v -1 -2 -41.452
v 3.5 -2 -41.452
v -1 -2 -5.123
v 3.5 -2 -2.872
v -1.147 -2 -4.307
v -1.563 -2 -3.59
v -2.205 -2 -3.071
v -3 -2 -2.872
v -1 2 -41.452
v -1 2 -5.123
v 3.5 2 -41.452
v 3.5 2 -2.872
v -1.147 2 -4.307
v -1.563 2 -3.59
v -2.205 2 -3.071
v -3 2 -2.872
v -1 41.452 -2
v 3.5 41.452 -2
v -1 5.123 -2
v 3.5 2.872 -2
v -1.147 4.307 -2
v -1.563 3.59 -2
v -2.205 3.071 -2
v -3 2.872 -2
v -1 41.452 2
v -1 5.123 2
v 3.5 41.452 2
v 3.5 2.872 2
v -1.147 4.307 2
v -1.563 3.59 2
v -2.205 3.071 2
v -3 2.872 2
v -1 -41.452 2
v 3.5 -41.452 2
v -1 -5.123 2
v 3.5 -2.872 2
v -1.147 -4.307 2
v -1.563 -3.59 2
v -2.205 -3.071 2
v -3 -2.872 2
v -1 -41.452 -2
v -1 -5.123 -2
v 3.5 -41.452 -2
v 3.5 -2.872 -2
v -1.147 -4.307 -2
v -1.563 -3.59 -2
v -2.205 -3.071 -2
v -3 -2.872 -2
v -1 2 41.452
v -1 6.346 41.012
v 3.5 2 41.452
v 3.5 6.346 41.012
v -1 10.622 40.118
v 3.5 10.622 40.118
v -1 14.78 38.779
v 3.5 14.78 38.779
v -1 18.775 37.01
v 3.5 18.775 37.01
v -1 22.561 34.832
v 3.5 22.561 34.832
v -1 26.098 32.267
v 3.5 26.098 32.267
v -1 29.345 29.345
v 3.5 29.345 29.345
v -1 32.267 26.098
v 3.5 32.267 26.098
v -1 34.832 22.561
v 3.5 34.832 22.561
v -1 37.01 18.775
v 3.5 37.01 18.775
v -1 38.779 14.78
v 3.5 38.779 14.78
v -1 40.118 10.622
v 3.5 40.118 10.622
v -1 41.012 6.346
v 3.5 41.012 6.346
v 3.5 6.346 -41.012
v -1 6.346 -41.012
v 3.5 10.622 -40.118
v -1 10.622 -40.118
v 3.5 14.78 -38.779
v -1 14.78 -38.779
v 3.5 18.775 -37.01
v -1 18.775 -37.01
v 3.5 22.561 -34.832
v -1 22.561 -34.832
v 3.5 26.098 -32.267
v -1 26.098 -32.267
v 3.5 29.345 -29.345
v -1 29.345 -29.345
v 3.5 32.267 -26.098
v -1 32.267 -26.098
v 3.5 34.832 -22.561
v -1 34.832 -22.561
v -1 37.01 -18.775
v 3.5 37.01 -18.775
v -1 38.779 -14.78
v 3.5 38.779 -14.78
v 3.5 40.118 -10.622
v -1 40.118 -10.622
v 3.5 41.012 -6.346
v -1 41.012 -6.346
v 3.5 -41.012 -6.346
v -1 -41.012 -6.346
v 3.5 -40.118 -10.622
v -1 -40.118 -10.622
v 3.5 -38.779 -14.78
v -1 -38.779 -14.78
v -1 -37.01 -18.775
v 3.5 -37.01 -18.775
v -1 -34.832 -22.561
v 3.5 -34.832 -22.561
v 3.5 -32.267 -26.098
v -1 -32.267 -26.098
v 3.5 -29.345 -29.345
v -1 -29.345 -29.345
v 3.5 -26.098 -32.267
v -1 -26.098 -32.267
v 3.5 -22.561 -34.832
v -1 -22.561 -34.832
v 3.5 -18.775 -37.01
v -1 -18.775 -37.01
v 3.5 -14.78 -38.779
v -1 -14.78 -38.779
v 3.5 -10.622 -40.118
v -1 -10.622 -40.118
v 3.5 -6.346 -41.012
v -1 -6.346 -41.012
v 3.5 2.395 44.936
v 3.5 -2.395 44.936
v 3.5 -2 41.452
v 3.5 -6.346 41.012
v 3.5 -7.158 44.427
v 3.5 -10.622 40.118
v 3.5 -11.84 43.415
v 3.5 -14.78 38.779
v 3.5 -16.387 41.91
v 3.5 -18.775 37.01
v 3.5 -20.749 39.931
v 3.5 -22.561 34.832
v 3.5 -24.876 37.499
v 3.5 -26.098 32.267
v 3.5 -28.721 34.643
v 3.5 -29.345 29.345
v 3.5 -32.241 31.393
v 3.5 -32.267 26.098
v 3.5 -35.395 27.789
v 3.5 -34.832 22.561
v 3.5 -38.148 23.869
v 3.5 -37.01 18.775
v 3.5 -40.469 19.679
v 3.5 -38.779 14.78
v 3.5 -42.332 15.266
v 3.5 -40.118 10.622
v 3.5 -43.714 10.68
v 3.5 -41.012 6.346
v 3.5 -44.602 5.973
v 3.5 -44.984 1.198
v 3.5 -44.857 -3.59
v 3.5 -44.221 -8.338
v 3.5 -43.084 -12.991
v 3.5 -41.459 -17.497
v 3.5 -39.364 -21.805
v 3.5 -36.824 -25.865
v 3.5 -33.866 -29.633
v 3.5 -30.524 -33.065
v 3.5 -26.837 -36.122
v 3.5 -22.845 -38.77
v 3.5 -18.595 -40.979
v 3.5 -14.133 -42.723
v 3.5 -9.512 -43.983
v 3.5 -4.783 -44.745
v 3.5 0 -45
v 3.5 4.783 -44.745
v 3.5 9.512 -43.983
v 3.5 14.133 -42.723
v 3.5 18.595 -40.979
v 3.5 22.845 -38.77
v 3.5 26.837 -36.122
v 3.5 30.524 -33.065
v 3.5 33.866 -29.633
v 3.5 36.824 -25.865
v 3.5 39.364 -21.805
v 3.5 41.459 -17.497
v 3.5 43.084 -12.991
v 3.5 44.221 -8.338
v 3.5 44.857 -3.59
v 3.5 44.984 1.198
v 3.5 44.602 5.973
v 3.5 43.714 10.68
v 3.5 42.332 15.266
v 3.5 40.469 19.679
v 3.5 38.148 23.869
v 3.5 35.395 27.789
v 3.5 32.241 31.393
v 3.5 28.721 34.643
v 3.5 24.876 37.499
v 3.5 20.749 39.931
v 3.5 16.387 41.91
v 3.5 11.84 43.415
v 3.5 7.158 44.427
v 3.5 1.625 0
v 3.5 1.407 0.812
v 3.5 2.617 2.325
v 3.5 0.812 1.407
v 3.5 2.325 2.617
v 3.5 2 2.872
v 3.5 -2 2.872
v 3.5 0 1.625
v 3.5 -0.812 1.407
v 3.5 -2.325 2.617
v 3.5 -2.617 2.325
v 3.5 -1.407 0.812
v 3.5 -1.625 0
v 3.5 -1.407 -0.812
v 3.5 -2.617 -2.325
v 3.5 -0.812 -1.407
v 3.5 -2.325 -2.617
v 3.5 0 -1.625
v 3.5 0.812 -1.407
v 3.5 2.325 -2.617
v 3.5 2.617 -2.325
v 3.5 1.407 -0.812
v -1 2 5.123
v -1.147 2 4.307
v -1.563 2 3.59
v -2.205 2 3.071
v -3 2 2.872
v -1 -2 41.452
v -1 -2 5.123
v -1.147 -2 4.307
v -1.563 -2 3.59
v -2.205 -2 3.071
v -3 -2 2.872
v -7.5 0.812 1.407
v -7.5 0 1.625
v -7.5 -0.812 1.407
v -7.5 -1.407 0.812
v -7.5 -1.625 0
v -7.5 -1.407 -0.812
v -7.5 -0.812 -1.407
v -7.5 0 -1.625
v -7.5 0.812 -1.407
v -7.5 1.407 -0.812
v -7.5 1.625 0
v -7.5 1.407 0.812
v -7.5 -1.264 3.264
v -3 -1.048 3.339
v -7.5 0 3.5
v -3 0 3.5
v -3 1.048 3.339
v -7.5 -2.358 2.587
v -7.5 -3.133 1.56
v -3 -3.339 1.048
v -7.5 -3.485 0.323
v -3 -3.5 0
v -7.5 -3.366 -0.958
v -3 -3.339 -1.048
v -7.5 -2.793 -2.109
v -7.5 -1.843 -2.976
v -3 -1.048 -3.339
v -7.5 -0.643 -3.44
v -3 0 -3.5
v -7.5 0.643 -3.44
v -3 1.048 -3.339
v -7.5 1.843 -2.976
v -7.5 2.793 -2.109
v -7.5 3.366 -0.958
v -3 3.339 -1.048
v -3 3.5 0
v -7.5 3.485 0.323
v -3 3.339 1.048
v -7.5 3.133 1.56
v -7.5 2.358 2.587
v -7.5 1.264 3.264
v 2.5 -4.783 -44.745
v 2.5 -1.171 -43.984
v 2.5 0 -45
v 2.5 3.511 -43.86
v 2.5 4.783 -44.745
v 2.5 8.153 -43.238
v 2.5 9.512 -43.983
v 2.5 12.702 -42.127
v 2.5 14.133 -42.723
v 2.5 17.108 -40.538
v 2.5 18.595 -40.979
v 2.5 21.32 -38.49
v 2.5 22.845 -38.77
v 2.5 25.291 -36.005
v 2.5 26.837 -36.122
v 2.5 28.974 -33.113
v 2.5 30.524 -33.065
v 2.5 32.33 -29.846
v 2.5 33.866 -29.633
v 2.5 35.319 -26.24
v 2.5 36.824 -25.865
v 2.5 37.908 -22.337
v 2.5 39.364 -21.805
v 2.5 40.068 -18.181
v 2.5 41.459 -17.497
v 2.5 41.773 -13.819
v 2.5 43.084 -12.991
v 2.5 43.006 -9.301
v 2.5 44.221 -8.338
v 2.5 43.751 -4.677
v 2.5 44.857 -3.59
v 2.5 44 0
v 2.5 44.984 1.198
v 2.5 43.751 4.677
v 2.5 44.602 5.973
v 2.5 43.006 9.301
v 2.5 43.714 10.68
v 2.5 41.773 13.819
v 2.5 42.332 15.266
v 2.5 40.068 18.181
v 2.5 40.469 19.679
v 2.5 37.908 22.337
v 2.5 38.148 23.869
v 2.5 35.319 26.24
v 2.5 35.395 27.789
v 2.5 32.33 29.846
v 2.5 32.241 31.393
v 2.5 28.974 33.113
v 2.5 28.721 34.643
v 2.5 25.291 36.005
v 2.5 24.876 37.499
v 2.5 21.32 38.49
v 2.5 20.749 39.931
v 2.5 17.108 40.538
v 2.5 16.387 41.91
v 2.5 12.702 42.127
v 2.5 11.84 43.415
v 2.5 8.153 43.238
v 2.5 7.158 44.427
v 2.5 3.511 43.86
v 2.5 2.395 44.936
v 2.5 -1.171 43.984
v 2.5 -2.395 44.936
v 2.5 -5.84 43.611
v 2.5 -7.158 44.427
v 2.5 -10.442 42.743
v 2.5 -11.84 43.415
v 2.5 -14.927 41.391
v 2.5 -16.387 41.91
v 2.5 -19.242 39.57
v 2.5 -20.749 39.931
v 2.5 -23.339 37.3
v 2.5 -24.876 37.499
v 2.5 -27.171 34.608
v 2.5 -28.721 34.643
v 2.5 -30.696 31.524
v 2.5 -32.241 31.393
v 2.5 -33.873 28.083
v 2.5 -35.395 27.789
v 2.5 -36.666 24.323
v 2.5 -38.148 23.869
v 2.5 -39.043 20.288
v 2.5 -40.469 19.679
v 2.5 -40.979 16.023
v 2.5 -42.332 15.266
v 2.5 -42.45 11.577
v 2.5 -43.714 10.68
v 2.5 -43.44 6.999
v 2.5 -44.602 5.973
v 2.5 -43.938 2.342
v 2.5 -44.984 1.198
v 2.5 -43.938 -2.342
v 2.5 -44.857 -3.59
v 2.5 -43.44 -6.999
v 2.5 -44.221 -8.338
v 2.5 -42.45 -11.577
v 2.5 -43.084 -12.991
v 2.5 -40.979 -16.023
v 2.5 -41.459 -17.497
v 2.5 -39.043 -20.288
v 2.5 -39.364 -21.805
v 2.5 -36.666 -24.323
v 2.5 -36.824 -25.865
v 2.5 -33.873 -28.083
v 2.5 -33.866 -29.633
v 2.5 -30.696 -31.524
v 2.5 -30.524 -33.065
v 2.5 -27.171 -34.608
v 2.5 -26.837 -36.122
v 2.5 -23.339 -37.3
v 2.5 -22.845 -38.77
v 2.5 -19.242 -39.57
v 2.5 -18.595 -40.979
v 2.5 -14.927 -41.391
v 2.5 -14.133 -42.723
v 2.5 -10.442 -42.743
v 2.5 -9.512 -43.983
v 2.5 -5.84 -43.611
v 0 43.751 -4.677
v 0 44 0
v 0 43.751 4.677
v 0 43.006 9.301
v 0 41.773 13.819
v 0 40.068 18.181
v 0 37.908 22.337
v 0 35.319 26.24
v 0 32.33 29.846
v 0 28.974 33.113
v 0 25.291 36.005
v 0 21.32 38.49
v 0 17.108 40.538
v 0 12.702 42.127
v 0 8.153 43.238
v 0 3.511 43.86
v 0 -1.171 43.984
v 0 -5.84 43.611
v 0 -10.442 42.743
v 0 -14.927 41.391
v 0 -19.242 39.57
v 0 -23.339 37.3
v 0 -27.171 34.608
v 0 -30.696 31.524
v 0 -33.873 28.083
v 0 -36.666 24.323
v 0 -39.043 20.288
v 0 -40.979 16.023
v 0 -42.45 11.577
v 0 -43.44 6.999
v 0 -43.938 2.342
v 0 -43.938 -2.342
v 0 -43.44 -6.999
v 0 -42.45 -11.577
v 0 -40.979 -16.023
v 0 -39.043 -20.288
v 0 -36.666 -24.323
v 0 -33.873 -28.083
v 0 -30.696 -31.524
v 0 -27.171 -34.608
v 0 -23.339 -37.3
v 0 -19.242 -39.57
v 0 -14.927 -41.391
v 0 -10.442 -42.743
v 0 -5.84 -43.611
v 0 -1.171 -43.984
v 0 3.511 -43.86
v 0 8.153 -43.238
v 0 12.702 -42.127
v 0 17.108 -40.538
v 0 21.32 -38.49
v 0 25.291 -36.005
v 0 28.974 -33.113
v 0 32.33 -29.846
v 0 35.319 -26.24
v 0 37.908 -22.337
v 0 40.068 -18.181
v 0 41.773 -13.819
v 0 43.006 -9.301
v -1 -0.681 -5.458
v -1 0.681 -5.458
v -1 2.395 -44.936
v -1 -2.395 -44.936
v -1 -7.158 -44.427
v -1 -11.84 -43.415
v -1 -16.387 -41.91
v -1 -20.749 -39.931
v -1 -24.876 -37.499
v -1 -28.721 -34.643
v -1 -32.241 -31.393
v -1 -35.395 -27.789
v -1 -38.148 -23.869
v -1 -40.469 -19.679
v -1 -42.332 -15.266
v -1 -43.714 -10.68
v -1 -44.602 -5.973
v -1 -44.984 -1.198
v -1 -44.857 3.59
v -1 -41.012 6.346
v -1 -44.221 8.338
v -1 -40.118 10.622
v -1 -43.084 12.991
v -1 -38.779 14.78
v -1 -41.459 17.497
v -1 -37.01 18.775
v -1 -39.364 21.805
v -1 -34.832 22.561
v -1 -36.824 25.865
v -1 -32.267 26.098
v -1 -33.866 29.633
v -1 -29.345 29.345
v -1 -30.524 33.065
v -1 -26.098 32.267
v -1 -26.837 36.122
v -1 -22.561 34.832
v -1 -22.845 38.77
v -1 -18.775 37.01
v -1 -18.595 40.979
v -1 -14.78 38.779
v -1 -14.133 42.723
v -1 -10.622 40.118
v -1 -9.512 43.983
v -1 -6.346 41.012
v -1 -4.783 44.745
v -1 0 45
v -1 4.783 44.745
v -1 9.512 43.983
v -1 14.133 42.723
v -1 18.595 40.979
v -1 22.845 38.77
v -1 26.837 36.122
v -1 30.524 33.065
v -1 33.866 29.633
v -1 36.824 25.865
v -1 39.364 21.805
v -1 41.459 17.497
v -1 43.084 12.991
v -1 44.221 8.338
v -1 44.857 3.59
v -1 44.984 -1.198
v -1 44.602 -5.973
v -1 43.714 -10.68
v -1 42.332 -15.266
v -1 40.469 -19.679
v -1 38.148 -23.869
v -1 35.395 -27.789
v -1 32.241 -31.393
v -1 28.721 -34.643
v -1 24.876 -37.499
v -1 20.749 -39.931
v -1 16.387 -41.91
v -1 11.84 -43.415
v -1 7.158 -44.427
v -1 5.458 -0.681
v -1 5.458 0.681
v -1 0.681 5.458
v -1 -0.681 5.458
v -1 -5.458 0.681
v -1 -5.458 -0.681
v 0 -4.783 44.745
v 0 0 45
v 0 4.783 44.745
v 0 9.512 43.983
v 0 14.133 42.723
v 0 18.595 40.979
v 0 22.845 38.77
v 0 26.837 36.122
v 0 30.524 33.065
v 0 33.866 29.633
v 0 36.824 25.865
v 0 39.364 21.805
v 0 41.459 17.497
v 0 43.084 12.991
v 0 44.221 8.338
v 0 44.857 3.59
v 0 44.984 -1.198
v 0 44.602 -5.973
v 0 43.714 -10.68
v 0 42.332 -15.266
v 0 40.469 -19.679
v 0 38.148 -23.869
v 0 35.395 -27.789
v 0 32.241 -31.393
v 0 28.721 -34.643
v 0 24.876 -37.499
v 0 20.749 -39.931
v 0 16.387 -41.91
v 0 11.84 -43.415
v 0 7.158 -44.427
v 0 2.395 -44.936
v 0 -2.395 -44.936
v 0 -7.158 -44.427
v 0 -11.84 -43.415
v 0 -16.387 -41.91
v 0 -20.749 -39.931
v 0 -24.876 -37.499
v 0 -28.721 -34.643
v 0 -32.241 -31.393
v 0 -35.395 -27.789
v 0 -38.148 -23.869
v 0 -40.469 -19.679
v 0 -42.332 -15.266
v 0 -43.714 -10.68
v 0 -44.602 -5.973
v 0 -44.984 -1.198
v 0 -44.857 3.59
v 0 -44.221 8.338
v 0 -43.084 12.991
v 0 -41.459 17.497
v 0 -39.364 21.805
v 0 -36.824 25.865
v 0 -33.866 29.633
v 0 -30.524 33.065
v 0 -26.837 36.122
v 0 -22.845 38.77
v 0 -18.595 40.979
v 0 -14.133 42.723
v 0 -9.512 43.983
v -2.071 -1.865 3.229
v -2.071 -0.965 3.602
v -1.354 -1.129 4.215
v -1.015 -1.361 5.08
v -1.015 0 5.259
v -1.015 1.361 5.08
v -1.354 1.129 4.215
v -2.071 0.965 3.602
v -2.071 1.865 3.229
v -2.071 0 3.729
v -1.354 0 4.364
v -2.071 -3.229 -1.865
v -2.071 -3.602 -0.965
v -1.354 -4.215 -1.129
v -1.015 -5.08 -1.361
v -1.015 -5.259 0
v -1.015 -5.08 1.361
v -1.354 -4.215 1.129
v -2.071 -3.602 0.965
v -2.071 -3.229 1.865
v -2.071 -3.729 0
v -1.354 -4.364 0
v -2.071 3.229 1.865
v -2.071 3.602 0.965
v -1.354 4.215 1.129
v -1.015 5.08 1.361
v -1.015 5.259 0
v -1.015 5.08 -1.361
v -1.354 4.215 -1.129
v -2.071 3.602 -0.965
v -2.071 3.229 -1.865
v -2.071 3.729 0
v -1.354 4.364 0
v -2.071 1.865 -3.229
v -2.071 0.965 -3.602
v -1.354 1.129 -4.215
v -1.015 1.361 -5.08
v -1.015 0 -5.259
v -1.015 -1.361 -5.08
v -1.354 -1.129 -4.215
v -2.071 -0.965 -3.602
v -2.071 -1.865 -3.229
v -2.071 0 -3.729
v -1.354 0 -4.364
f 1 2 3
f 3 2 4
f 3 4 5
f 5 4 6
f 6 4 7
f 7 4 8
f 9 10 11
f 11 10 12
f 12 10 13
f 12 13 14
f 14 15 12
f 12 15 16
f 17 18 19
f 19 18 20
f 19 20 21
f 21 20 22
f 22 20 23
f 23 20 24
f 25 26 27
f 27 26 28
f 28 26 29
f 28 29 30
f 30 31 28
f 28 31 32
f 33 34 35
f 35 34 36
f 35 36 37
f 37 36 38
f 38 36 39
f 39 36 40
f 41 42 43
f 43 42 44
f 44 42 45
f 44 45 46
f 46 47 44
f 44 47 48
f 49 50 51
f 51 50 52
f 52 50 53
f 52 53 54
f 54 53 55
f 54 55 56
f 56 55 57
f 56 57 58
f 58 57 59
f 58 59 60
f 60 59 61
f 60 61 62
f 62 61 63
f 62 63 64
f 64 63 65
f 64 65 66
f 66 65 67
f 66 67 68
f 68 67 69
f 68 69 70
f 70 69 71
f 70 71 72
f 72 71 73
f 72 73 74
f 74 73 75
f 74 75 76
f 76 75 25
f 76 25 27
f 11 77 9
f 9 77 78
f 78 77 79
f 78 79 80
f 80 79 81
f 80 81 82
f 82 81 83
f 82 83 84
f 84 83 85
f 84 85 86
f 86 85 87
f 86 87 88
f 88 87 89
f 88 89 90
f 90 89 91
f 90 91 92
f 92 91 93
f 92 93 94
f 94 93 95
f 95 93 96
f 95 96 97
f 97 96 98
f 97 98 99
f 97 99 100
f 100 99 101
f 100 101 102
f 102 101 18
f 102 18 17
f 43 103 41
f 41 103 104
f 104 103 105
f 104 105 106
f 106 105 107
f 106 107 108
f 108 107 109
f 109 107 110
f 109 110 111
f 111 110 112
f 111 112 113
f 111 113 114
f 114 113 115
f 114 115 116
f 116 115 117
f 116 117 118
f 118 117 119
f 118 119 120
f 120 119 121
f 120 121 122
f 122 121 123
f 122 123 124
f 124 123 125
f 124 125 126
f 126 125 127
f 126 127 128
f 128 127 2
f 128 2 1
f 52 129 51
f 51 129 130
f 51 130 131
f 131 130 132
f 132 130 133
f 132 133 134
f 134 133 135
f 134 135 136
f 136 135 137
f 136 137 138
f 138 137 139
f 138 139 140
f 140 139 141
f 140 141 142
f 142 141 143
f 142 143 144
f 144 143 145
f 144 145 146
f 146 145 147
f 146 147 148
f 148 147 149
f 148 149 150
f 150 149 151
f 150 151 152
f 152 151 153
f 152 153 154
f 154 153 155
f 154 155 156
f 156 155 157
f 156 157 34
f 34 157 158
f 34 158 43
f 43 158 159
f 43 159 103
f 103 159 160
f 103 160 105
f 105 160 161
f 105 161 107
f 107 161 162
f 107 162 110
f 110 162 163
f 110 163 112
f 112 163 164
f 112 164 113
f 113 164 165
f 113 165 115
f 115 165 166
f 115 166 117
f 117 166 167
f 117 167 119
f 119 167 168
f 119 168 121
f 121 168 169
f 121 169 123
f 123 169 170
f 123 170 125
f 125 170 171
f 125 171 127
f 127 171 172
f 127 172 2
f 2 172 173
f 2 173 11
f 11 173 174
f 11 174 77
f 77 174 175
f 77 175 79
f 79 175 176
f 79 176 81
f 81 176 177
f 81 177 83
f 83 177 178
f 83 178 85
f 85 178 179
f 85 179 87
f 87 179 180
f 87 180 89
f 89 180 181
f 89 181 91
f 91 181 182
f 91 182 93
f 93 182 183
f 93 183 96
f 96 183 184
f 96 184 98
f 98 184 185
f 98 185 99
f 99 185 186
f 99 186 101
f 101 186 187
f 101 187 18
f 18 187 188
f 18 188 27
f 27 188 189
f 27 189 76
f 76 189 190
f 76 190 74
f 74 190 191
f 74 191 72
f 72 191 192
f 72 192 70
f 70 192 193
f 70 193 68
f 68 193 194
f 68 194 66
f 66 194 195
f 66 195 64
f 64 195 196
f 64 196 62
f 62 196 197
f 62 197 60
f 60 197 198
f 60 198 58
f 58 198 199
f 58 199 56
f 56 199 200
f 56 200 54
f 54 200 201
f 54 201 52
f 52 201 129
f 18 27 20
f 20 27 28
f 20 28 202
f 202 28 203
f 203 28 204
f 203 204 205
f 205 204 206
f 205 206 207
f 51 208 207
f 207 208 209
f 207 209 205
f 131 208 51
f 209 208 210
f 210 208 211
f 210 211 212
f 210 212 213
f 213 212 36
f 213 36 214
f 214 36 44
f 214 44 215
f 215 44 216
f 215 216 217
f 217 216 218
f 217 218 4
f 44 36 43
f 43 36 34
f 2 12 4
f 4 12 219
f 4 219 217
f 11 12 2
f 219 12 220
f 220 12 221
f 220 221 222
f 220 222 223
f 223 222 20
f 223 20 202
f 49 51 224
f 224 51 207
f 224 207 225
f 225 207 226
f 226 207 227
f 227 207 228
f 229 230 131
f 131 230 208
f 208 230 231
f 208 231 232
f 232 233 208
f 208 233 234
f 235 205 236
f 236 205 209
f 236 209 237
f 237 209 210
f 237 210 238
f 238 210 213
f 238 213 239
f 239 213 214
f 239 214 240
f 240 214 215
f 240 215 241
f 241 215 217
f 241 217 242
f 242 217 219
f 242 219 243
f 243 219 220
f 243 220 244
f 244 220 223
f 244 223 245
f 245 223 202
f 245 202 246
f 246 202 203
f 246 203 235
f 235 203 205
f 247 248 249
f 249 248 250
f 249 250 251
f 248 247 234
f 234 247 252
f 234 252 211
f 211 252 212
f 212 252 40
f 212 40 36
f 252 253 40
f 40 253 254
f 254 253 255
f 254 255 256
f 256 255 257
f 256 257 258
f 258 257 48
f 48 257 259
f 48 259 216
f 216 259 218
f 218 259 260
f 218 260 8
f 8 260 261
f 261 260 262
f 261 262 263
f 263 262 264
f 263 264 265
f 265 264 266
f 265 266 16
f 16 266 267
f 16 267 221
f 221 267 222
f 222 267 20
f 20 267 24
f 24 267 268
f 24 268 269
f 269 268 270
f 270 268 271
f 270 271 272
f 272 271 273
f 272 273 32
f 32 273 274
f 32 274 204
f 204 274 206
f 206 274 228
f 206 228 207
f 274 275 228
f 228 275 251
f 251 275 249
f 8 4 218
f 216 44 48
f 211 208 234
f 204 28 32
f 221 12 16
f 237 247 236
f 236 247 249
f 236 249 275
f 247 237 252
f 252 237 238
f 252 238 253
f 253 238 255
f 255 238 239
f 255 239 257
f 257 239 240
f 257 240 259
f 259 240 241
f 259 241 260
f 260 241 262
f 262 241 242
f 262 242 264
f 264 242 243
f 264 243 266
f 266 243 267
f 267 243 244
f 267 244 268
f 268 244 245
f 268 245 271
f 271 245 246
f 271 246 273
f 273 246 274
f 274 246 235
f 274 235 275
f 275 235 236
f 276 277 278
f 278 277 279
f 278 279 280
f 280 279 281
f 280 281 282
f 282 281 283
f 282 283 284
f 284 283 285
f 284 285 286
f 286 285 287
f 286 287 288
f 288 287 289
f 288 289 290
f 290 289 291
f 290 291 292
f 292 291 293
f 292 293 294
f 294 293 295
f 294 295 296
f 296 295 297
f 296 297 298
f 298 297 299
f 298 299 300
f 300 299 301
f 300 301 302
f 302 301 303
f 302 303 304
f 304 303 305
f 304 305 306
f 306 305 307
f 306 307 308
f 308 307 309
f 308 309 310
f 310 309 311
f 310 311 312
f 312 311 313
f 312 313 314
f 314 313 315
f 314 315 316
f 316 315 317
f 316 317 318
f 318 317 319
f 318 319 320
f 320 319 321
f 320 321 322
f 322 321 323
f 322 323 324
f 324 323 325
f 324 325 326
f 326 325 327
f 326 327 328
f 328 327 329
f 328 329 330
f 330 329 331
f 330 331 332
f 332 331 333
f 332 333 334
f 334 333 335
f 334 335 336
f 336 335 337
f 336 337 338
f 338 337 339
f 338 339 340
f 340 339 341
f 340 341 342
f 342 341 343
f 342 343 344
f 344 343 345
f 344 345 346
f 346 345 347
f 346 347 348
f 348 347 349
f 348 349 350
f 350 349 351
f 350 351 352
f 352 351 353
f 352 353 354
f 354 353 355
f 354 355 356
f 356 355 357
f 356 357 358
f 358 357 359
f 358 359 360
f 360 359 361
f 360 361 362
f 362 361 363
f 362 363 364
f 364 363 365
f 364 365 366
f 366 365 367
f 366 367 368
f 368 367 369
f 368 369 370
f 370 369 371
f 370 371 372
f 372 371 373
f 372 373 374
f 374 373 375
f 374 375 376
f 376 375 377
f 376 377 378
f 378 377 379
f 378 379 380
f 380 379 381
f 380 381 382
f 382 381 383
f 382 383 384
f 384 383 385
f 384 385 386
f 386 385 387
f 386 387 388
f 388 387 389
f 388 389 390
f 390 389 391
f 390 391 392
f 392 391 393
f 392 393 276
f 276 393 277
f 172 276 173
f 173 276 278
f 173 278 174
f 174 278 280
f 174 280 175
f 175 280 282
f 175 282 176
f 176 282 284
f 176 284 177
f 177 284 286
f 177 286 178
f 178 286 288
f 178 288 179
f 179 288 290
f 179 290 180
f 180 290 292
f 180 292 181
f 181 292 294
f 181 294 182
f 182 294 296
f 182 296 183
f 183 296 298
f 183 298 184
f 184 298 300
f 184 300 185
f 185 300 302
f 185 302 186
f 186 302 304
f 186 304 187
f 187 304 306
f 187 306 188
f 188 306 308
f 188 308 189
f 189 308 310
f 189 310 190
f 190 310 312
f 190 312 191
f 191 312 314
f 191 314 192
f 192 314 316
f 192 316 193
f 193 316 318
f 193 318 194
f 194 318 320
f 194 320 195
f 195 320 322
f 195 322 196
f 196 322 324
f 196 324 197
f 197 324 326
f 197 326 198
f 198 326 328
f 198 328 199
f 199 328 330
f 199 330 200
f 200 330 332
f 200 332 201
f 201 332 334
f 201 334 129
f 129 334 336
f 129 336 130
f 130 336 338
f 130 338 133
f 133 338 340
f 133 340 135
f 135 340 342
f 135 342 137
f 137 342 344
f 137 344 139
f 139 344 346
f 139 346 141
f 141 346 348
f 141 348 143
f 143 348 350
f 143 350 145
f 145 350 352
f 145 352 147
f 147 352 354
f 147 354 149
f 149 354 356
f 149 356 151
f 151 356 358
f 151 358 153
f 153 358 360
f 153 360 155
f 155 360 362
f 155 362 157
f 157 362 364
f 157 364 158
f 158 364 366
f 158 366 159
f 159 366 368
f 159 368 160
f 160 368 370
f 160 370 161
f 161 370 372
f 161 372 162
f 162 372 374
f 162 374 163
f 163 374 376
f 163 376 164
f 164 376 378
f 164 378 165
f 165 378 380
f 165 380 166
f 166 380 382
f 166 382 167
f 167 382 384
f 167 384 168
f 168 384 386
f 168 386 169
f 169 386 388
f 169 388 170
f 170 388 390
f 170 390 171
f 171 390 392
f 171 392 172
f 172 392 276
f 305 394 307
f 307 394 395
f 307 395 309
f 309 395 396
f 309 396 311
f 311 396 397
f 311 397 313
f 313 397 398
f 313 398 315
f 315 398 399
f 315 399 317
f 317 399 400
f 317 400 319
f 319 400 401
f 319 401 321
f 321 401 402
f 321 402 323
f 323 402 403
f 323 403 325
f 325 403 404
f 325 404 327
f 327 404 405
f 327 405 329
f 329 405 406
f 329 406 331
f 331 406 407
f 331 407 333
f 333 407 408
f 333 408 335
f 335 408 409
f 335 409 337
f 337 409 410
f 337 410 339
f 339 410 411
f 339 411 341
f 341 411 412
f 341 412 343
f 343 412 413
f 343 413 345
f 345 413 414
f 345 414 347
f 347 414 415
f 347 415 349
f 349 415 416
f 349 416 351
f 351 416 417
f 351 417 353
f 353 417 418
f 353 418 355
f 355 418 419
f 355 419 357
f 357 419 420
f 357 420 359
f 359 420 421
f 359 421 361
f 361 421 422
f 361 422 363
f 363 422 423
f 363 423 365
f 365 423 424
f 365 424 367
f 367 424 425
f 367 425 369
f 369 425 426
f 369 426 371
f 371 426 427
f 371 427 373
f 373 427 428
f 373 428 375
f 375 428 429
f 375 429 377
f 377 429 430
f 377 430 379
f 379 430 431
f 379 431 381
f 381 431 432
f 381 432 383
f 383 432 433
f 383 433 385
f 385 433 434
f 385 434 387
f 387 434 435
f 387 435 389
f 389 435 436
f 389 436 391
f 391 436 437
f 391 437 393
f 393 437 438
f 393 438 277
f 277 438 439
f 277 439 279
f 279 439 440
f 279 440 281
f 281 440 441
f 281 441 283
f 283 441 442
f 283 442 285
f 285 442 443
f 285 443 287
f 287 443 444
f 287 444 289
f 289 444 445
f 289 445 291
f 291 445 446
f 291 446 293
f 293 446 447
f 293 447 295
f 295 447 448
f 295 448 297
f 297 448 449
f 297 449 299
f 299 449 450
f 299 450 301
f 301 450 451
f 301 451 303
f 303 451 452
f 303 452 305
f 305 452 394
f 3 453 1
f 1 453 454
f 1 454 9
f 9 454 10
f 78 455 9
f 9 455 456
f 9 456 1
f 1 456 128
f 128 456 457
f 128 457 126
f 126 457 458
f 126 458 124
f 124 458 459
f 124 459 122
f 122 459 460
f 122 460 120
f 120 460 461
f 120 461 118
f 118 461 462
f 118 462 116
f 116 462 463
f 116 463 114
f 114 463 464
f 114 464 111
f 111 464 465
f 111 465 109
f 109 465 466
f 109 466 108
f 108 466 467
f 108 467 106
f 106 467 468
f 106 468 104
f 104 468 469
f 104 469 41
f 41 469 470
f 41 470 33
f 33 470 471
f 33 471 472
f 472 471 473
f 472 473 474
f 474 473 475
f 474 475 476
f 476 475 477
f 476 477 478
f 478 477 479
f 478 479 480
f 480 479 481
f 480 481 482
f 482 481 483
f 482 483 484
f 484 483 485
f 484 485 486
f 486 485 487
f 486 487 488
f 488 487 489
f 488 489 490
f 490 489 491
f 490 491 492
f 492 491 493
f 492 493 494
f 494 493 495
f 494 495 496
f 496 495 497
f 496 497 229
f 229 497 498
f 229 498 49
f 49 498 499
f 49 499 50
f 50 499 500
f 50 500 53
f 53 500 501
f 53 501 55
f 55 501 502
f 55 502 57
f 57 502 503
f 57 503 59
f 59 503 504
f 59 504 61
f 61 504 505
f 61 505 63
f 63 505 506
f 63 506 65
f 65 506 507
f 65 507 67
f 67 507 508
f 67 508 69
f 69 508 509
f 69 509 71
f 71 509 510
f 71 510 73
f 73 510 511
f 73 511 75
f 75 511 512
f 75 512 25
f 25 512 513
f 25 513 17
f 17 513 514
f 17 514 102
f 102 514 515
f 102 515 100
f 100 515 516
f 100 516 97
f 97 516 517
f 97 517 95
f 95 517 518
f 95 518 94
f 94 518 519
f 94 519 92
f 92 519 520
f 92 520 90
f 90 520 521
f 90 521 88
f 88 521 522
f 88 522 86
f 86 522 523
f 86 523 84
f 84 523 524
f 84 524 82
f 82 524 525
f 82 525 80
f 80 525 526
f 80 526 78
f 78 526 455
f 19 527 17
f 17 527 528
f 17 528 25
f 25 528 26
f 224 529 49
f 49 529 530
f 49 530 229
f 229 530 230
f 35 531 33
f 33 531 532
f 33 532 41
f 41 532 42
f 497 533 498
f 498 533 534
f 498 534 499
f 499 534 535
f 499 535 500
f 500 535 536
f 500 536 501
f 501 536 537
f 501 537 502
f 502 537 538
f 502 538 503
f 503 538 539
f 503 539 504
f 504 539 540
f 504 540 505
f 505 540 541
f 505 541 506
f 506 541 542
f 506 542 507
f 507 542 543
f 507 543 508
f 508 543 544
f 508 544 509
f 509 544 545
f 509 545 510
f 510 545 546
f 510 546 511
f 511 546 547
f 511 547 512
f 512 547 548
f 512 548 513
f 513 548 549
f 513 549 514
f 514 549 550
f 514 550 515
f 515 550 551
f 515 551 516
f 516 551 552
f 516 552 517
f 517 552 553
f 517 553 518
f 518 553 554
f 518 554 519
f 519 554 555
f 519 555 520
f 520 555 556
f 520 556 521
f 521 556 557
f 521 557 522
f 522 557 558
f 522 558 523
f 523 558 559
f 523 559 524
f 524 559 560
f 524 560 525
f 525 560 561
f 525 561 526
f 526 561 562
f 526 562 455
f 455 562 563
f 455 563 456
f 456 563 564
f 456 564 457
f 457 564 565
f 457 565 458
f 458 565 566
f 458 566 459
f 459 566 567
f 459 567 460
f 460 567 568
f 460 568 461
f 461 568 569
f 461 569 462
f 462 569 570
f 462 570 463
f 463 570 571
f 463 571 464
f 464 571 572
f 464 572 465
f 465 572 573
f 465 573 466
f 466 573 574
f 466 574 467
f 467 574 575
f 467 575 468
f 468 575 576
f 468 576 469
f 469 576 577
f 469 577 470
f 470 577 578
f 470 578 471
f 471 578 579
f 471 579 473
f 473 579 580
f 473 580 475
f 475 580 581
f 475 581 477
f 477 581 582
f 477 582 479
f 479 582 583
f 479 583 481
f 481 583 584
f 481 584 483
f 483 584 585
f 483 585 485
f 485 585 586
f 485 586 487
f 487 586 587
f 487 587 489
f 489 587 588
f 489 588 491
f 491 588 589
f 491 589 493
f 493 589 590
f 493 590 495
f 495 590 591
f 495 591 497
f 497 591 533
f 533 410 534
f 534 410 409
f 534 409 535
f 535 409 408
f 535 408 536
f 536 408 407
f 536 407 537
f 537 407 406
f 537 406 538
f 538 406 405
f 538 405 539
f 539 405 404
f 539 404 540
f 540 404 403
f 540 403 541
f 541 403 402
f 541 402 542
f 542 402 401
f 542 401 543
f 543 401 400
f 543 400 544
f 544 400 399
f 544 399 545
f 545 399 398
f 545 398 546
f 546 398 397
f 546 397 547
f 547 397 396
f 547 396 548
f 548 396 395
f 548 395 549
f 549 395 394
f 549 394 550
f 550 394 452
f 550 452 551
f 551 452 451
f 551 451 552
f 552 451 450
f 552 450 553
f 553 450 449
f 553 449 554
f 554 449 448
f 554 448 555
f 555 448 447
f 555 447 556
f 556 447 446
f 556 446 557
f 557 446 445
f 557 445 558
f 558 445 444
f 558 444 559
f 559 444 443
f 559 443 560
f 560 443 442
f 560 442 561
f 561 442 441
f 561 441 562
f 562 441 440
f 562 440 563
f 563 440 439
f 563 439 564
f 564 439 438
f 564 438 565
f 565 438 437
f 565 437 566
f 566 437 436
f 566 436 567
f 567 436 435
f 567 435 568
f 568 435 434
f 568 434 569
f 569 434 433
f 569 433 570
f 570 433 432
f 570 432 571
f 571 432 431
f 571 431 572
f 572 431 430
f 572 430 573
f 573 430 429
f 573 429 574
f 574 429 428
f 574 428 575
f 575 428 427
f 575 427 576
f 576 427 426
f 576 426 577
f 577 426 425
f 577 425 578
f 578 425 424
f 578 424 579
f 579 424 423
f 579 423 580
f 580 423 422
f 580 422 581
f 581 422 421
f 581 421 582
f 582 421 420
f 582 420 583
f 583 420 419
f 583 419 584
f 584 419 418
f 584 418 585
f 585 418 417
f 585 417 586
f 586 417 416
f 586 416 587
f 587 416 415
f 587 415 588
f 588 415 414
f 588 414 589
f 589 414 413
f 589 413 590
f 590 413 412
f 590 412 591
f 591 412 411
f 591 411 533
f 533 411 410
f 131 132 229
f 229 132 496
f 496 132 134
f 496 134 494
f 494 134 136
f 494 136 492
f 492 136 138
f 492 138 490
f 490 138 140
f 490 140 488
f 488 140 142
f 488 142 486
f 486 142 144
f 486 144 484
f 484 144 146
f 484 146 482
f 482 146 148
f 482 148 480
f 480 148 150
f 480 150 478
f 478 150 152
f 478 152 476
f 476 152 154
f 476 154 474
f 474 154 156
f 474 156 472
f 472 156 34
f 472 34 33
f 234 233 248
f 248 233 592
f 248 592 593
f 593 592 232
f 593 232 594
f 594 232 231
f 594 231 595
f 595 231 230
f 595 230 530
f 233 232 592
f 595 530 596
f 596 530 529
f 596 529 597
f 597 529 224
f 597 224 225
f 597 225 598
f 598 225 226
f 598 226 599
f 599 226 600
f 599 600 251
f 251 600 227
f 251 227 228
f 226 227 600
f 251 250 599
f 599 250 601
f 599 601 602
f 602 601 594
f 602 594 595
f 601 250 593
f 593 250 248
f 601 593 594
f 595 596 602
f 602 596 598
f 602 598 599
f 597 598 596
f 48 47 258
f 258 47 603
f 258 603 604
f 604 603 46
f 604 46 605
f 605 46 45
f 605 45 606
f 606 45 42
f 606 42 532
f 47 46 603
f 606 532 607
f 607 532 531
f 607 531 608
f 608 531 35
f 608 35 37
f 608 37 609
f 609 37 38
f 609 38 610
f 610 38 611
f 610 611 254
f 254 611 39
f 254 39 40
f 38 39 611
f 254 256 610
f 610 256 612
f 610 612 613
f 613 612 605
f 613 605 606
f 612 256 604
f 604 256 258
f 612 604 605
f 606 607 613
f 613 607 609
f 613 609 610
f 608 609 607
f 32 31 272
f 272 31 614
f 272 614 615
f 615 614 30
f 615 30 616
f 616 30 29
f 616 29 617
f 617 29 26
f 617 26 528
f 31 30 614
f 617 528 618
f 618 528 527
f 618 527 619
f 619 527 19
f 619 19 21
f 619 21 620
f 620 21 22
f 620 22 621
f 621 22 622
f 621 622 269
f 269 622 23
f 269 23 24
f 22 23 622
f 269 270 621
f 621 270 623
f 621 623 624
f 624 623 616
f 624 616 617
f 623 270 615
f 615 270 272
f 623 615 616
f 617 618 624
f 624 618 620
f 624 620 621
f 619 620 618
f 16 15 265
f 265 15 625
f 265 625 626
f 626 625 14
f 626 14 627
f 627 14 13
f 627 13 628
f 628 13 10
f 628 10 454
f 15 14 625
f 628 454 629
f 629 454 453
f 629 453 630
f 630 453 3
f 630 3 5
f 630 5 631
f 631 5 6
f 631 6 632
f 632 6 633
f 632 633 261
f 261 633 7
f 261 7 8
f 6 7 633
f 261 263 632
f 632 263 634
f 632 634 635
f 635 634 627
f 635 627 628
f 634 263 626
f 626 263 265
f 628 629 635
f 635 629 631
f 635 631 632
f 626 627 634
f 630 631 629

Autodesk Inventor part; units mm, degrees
ref_plane "YZ Plane" through (0, 0, 0) normal (1, 0, 0) x (0, 1, 0)
ref_plane "XZ Plane" through (0, 0, 0) normal (0, 1, 0) x (-1, 0, 0)
ref_plane "XY Plane" through (0, 0, 0) normal (0, 0, 1) x (1, 0, 0)
sketch "Sketch1" plane through (0, 0, 0) normal (1, 0, 0) x (0, 1, 0)
  circle A0 centre (0, 0) radius 44
  dimension "d0" = 88
extrude "Extrusion1" add sketch "Sketch1" along normal blind 3.5
sketch "Sketch2" plane through (3.5, 0, 0) normal (1, 0, 0) x (0, 0, -1)
  circle A0 centre (0, 0) radius 45
  dimension "d3" = 90
extrude "Extrusion2" add sketch "Sketch2" along normal blind 1
sketch "Sketch3" plane through (0, 0, 0) normal (-1, 0, 0) x (0, 0, 1)
  circle A0 centre (0, 0) radius 45
  dimension "d6" = 90
extrude "Extrusion3" add sketch "Sketch3" along normal blind 1
sketch "Sketch4" plane through (4.5, 0, 0) normal (1, 0, 0) x (0, 0, -1)
  circle A0 centre (0, 0) radius 41.5
  dimension "d9" = 83
extrude "Extrusion4" cut sketch "Sketch4" against normal blind 6
sketch "Sketch5" plane through (4.5, 0, 0) normal (1, 0, 0) x (0, 0, -1)
  circle A0 centre (0, 0) radius 3.5
  dimension "d12" = 7
extrude "Extrusion5" add sketch "Sketch5" against normal blind 10
sketch "Sketch6" plane through (4.5, 0, 0) normal (1, 0, 0) x (0, 0, -1)
  circle A0 centre (0, 0) radius 45
extrude "Extrusion6" cut sketch "Sketch6" against normal blind 2
sketch "Sketch7" plane through (2.5, 0, 0) normal (1, 0, 0) x (0, 0, -1)
  circle A0 centre (0, 0) radius 3.5 projected
  circle A1 centre (0, 0) radius 41.5
  circle A2 centre (0, 0) radius 45
extrude "Extrusion7" add sketch "Sketch7" along normal blind 1 contours A2
sketch "Sketch8" plane through (2.5, 0, 0) normal (1, 0, 0) x (0, 0, -1)
  circle A0 centre (0, 0) radius 3.5
extrude "Extrusion8" add sketch "Sketch8" along normal blind 1
sketch "Sketch9" plane through (3.5, 0, 0) normal (1, 0, 0) x (0, 0, -1)
  circle A0 centre (0, 0) radius 1.625
  dimension "d21" = 3.25
extrude "Extrusion9" cut sketch "Sketch9" against normal blind 10
sketch "Sketch10" plane through (3.5, 0, 0) normal (1, 0, 0) x (0, 0, -1)
  line L0 (2, 2.1756) -> (-2, 2.1756)
  line L1 (-2, 2.1756) -> (-2, 42.8244)
  line L2 (-2, 42.8244) -> (2, 42.8244)
  line L3 (2, 42.8244) -> (2, 2.1756)
  line L4 (2, 2.1756) -> (-2, 42.8244) construction
  line L5 (-2, 2.1756) -> (2, 42.8244) construction
  point P0 (0, 0)
  point P1 (0, 22.5)
  dimension "d24" = 4
extrude "Extrusion10" add sketch "Sketch10" against normal blind 4.5
pattern_circular "Circular Pattern1" count 4 over 360 about axis through (4.5, 0, 0) along (-1, 0, 0) of "Extrusion10"
fillet "Fillet1" radius 2 5 edges at (-1, 0, 3.5) (-1, -3.5, 0) (-1, 3.5, 0) (-1, -1.0481, -3.3394) (-1, 1.0481, -3.3394)
sketch "Sketch11" plane through (-5.5, 0, 0) normal (-1, 0, 0) x (0, 0, 1)
  circle A0 centre (0, 0) radius 1.625
  circle A1 centre (0, 0) radius 3.5
extrude "Extrusion11" add sketch "Sketch11" along normal blind 2
sketch "Sketch12" plane through (-7.5, 0, 0) normal (-1, 0, 0) x (0, 0, 1)
  circle A0 centre (0, 0) radius 1.625
  circle A1 centre (0, 0) radius 2
  dimension "d33" = 4
extrude "Extrusion12" add sketch "Sketch12" along normal blind 3.3
sketch "Sketch13" plane through (-10.8, 0, 0) normal (-1, 0, 0) x (0, 0, 1)
  circle A0 centre (0, 0) radius 3.5 projected
  line L0 (2.5211, -2.4277) -> (-2.5211, -2.4277)
  line L1 (-2.5211, -2.4277) -> (-2.5211, 2.4277)
  line L2 (-2.5211, 2.4277) -> (2.5211, 2.4277)
  line L3 (2.5211, 2.4277) -> (2.5211, -2.4277)
  line L4 (2.5211, -2.4277) -> (-2.5211, 2.4277) construction
  line L5 (-2.5211, -2.4277) -> (2.5211, 2.4277) construction
extrude "Extrusion13" cut sketch "Sketch13" against normal blind 3.3 contours L3 L0 L1 L2
properties part number "mtv_pushingWheel_2-25"
